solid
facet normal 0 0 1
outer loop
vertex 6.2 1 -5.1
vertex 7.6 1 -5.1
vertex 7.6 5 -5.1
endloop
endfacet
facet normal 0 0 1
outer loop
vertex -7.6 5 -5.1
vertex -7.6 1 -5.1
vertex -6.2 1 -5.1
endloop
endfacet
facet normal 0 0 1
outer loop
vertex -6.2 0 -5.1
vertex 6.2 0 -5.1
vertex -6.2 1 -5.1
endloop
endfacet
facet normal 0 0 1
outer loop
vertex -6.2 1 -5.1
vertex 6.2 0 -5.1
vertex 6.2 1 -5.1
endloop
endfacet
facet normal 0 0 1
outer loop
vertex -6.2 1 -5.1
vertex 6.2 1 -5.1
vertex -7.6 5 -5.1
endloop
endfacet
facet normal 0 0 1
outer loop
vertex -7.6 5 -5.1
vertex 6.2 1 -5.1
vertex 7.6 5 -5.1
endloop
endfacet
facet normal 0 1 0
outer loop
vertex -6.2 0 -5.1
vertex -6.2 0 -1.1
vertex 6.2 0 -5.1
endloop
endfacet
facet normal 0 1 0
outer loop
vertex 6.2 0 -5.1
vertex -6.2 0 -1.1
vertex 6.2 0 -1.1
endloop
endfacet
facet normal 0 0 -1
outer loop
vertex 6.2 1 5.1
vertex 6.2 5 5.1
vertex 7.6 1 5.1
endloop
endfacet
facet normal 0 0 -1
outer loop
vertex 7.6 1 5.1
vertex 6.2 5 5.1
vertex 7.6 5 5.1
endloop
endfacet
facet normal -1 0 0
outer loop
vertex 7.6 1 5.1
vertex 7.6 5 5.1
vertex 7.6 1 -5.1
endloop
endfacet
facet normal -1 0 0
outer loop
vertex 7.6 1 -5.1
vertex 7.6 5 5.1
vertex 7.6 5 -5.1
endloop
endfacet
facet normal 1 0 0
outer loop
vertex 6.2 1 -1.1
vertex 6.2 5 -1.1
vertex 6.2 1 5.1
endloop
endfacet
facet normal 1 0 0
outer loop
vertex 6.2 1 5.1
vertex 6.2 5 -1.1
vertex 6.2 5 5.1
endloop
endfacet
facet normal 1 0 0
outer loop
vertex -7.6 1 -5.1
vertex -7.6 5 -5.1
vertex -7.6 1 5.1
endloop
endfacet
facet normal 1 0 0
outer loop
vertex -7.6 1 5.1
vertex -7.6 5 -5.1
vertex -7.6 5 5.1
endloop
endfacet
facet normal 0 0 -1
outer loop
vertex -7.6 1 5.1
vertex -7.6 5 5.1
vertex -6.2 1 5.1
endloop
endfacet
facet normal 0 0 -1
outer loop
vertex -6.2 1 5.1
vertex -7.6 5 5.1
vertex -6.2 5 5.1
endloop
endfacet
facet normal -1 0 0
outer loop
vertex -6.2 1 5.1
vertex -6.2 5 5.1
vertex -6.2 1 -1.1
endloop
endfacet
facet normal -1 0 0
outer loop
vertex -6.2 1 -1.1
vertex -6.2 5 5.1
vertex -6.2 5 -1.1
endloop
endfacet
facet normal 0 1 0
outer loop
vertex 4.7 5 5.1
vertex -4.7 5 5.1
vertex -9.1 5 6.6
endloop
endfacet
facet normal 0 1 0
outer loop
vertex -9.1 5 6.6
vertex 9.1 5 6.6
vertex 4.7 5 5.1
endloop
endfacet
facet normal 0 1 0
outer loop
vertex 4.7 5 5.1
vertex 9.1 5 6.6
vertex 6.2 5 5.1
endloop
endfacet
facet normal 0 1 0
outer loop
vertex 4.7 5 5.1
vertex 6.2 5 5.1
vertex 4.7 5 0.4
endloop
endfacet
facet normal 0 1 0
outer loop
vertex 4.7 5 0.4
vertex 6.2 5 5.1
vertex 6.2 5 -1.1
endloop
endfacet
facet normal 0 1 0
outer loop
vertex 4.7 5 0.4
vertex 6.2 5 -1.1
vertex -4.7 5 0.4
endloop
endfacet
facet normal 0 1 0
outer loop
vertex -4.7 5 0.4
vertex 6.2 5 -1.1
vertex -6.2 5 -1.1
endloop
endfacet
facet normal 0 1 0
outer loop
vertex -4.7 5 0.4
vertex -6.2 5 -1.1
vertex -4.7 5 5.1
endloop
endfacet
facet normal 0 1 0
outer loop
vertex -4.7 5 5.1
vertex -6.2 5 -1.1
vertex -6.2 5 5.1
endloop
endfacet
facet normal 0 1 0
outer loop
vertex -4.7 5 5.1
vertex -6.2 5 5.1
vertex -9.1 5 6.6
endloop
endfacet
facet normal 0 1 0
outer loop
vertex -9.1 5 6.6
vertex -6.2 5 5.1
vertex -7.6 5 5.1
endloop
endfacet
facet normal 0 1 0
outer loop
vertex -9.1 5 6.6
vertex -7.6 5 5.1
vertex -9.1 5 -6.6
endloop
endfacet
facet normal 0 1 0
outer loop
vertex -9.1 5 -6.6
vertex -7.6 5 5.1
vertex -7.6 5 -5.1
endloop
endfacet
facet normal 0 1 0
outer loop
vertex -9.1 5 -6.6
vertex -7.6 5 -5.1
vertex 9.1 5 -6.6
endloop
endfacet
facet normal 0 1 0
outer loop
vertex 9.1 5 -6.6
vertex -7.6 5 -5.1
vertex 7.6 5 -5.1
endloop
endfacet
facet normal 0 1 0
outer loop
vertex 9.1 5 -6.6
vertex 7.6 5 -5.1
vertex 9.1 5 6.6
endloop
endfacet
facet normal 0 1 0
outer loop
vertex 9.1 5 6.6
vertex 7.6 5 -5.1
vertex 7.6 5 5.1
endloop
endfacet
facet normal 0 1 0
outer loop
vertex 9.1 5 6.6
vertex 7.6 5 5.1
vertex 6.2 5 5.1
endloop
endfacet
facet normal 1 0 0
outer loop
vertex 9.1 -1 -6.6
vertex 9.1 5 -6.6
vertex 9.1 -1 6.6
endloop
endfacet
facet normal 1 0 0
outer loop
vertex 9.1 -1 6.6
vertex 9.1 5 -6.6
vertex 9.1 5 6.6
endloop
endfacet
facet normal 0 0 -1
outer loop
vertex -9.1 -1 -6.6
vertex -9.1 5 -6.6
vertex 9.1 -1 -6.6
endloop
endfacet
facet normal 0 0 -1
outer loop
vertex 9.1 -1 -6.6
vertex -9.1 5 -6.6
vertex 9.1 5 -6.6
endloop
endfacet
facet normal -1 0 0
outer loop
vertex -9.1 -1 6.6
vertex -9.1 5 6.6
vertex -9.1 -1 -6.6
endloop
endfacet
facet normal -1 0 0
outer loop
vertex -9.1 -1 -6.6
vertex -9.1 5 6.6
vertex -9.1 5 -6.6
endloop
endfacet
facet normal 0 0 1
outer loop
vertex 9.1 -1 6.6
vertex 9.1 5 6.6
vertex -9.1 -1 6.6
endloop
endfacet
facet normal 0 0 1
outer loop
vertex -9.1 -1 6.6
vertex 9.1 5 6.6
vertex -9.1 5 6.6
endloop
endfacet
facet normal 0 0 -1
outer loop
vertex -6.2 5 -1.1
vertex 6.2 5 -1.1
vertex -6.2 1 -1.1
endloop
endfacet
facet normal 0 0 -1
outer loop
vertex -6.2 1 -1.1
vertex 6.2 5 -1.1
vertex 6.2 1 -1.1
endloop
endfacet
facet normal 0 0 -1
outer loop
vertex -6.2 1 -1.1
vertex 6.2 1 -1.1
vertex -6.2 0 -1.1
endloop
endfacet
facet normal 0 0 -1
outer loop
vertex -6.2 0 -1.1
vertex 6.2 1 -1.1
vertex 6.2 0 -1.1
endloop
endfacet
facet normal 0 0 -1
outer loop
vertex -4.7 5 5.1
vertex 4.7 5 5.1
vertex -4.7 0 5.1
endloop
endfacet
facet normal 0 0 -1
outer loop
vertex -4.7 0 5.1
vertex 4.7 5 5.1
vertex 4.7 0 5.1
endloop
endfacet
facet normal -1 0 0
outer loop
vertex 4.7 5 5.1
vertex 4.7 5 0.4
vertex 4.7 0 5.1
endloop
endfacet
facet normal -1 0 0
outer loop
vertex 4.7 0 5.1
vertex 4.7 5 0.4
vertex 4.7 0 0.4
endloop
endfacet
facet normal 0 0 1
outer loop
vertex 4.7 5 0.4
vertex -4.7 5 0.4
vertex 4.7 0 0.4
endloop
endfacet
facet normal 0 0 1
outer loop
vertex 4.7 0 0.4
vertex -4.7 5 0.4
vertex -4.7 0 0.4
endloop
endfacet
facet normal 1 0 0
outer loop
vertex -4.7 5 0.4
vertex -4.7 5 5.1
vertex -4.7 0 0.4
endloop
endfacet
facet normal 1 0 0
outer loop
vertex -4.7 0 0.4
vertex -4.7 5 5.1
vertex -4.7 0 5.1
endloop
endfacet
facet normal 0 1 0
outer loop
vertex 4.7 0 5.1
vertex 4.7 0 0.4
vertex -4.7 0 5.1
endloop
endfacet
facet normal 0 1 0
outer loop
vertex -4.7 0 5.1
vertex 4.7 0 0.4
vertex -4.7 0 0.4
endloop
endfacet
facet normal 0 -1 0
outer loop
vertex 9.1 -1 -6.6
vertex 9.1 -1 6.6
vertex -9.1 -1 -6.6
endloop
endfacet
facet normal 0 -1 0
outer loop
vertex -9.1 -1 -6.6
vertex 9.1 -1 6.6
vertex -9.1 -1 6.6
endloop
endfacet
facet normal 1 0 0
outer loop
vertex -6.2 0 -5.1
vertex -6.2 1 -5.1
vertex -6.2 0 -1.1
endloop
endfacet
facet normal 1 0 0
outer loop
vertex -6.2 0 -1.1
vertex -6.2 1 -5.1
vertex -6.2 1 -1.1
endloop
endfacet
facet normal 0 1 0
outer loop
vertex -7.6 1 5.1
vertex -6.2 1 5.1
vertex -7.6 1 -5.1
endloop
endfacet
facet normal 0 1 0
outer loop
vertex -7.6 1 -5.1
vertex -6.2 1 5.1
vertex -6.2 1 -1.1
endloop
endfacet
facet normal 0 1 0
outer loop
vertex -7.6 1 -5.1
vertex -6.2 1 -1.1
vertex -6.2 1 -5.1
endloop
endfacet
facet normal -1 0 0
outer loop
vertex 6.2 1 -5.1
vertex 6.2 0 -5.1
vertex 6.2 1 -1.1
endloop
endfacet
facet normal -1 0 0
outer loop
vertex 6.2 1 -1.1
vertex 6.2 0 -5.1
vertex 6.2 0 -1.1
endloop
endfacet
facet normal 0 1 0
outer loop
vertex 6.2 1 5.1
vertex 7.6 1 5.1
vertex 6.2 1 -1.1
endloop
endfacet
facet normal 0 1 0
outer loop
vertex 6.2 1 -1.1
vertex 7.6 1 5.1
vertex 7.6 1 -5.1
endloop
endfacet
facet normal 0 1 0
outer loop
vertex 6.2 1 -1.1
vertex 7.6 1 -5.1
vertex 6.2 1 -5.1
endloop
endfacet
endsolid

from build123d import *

# Parameters (mm, degrees)
SKETCH_1_W      = 18.2
SKETCH_1_H      = 13.2
SKETCH_1_W_2    = 9.4
SKETCH_1_H_2    = 4.7
EXTRUDE_1_DEPTH = 5
SKETCH_6_W      = 18.2
SKETCH_6_H      = 13.2
EXTRUDE_4_DEPTH = 1
SKETCH_7_W      = 1.4
SKETCH_7_H      = 10.2
EXTRUDE_5_DEPTH = 1


with BuildPart() as part:
    # Эскиз1 → Бобышка-Вытянуть1 (new body)
    with BuildSketch(Plane(origin=(0, 0, 0), x_dir=(1, 0, 0), z_dir=(0, 1, 0))):
        Rectangle(SKETCH_1_W, SKETCH_1_H)
        Polygon((-6.2, -5.1), (-6.2, 1.1), (6.2, 1.1), (6.2, -5.1), (7.6, -5.1), (7.6, 5.1), (-7.6, 5.1), (-7.6, -5.1), align=None, mode=Mode.SUBTRACT)
        with Locations((0, -2.75)):
            Rectangle(SKETCH_1_W_2, SKETCH_1_H_2, mode=Mode.SUBTRACT)
    extrude(amount=EXTRUDE_1_DEPTH)

    # Эскиз6 → Бобышка-Вытянуть4 (add)
    with BuildSketch(Plane.XZ):
        Rectangle(SKETCH_6_W, SKETCH_6_H)
    extrude(amount=EXTRUDE_4_DEPTH)

    # Эскиз7 → Бобышка-Вытянуть5 (add)
    with BuildSketch(Plane(origin=(0, 0, 0), x_dir=(1, 0, 0), z_dir=(0, 1, 0))):
        with Locations((-6.9, 0)):
            Rectangle(SKETCH_7_W, SKETCH_7_H)
        with Locations((6.9, 0)):
            Rectangle(SKETCH_7_W, SKETCH_7_H)
    extrude(amount=EXTRUDE_5_DEPTH)


solid = part.part
